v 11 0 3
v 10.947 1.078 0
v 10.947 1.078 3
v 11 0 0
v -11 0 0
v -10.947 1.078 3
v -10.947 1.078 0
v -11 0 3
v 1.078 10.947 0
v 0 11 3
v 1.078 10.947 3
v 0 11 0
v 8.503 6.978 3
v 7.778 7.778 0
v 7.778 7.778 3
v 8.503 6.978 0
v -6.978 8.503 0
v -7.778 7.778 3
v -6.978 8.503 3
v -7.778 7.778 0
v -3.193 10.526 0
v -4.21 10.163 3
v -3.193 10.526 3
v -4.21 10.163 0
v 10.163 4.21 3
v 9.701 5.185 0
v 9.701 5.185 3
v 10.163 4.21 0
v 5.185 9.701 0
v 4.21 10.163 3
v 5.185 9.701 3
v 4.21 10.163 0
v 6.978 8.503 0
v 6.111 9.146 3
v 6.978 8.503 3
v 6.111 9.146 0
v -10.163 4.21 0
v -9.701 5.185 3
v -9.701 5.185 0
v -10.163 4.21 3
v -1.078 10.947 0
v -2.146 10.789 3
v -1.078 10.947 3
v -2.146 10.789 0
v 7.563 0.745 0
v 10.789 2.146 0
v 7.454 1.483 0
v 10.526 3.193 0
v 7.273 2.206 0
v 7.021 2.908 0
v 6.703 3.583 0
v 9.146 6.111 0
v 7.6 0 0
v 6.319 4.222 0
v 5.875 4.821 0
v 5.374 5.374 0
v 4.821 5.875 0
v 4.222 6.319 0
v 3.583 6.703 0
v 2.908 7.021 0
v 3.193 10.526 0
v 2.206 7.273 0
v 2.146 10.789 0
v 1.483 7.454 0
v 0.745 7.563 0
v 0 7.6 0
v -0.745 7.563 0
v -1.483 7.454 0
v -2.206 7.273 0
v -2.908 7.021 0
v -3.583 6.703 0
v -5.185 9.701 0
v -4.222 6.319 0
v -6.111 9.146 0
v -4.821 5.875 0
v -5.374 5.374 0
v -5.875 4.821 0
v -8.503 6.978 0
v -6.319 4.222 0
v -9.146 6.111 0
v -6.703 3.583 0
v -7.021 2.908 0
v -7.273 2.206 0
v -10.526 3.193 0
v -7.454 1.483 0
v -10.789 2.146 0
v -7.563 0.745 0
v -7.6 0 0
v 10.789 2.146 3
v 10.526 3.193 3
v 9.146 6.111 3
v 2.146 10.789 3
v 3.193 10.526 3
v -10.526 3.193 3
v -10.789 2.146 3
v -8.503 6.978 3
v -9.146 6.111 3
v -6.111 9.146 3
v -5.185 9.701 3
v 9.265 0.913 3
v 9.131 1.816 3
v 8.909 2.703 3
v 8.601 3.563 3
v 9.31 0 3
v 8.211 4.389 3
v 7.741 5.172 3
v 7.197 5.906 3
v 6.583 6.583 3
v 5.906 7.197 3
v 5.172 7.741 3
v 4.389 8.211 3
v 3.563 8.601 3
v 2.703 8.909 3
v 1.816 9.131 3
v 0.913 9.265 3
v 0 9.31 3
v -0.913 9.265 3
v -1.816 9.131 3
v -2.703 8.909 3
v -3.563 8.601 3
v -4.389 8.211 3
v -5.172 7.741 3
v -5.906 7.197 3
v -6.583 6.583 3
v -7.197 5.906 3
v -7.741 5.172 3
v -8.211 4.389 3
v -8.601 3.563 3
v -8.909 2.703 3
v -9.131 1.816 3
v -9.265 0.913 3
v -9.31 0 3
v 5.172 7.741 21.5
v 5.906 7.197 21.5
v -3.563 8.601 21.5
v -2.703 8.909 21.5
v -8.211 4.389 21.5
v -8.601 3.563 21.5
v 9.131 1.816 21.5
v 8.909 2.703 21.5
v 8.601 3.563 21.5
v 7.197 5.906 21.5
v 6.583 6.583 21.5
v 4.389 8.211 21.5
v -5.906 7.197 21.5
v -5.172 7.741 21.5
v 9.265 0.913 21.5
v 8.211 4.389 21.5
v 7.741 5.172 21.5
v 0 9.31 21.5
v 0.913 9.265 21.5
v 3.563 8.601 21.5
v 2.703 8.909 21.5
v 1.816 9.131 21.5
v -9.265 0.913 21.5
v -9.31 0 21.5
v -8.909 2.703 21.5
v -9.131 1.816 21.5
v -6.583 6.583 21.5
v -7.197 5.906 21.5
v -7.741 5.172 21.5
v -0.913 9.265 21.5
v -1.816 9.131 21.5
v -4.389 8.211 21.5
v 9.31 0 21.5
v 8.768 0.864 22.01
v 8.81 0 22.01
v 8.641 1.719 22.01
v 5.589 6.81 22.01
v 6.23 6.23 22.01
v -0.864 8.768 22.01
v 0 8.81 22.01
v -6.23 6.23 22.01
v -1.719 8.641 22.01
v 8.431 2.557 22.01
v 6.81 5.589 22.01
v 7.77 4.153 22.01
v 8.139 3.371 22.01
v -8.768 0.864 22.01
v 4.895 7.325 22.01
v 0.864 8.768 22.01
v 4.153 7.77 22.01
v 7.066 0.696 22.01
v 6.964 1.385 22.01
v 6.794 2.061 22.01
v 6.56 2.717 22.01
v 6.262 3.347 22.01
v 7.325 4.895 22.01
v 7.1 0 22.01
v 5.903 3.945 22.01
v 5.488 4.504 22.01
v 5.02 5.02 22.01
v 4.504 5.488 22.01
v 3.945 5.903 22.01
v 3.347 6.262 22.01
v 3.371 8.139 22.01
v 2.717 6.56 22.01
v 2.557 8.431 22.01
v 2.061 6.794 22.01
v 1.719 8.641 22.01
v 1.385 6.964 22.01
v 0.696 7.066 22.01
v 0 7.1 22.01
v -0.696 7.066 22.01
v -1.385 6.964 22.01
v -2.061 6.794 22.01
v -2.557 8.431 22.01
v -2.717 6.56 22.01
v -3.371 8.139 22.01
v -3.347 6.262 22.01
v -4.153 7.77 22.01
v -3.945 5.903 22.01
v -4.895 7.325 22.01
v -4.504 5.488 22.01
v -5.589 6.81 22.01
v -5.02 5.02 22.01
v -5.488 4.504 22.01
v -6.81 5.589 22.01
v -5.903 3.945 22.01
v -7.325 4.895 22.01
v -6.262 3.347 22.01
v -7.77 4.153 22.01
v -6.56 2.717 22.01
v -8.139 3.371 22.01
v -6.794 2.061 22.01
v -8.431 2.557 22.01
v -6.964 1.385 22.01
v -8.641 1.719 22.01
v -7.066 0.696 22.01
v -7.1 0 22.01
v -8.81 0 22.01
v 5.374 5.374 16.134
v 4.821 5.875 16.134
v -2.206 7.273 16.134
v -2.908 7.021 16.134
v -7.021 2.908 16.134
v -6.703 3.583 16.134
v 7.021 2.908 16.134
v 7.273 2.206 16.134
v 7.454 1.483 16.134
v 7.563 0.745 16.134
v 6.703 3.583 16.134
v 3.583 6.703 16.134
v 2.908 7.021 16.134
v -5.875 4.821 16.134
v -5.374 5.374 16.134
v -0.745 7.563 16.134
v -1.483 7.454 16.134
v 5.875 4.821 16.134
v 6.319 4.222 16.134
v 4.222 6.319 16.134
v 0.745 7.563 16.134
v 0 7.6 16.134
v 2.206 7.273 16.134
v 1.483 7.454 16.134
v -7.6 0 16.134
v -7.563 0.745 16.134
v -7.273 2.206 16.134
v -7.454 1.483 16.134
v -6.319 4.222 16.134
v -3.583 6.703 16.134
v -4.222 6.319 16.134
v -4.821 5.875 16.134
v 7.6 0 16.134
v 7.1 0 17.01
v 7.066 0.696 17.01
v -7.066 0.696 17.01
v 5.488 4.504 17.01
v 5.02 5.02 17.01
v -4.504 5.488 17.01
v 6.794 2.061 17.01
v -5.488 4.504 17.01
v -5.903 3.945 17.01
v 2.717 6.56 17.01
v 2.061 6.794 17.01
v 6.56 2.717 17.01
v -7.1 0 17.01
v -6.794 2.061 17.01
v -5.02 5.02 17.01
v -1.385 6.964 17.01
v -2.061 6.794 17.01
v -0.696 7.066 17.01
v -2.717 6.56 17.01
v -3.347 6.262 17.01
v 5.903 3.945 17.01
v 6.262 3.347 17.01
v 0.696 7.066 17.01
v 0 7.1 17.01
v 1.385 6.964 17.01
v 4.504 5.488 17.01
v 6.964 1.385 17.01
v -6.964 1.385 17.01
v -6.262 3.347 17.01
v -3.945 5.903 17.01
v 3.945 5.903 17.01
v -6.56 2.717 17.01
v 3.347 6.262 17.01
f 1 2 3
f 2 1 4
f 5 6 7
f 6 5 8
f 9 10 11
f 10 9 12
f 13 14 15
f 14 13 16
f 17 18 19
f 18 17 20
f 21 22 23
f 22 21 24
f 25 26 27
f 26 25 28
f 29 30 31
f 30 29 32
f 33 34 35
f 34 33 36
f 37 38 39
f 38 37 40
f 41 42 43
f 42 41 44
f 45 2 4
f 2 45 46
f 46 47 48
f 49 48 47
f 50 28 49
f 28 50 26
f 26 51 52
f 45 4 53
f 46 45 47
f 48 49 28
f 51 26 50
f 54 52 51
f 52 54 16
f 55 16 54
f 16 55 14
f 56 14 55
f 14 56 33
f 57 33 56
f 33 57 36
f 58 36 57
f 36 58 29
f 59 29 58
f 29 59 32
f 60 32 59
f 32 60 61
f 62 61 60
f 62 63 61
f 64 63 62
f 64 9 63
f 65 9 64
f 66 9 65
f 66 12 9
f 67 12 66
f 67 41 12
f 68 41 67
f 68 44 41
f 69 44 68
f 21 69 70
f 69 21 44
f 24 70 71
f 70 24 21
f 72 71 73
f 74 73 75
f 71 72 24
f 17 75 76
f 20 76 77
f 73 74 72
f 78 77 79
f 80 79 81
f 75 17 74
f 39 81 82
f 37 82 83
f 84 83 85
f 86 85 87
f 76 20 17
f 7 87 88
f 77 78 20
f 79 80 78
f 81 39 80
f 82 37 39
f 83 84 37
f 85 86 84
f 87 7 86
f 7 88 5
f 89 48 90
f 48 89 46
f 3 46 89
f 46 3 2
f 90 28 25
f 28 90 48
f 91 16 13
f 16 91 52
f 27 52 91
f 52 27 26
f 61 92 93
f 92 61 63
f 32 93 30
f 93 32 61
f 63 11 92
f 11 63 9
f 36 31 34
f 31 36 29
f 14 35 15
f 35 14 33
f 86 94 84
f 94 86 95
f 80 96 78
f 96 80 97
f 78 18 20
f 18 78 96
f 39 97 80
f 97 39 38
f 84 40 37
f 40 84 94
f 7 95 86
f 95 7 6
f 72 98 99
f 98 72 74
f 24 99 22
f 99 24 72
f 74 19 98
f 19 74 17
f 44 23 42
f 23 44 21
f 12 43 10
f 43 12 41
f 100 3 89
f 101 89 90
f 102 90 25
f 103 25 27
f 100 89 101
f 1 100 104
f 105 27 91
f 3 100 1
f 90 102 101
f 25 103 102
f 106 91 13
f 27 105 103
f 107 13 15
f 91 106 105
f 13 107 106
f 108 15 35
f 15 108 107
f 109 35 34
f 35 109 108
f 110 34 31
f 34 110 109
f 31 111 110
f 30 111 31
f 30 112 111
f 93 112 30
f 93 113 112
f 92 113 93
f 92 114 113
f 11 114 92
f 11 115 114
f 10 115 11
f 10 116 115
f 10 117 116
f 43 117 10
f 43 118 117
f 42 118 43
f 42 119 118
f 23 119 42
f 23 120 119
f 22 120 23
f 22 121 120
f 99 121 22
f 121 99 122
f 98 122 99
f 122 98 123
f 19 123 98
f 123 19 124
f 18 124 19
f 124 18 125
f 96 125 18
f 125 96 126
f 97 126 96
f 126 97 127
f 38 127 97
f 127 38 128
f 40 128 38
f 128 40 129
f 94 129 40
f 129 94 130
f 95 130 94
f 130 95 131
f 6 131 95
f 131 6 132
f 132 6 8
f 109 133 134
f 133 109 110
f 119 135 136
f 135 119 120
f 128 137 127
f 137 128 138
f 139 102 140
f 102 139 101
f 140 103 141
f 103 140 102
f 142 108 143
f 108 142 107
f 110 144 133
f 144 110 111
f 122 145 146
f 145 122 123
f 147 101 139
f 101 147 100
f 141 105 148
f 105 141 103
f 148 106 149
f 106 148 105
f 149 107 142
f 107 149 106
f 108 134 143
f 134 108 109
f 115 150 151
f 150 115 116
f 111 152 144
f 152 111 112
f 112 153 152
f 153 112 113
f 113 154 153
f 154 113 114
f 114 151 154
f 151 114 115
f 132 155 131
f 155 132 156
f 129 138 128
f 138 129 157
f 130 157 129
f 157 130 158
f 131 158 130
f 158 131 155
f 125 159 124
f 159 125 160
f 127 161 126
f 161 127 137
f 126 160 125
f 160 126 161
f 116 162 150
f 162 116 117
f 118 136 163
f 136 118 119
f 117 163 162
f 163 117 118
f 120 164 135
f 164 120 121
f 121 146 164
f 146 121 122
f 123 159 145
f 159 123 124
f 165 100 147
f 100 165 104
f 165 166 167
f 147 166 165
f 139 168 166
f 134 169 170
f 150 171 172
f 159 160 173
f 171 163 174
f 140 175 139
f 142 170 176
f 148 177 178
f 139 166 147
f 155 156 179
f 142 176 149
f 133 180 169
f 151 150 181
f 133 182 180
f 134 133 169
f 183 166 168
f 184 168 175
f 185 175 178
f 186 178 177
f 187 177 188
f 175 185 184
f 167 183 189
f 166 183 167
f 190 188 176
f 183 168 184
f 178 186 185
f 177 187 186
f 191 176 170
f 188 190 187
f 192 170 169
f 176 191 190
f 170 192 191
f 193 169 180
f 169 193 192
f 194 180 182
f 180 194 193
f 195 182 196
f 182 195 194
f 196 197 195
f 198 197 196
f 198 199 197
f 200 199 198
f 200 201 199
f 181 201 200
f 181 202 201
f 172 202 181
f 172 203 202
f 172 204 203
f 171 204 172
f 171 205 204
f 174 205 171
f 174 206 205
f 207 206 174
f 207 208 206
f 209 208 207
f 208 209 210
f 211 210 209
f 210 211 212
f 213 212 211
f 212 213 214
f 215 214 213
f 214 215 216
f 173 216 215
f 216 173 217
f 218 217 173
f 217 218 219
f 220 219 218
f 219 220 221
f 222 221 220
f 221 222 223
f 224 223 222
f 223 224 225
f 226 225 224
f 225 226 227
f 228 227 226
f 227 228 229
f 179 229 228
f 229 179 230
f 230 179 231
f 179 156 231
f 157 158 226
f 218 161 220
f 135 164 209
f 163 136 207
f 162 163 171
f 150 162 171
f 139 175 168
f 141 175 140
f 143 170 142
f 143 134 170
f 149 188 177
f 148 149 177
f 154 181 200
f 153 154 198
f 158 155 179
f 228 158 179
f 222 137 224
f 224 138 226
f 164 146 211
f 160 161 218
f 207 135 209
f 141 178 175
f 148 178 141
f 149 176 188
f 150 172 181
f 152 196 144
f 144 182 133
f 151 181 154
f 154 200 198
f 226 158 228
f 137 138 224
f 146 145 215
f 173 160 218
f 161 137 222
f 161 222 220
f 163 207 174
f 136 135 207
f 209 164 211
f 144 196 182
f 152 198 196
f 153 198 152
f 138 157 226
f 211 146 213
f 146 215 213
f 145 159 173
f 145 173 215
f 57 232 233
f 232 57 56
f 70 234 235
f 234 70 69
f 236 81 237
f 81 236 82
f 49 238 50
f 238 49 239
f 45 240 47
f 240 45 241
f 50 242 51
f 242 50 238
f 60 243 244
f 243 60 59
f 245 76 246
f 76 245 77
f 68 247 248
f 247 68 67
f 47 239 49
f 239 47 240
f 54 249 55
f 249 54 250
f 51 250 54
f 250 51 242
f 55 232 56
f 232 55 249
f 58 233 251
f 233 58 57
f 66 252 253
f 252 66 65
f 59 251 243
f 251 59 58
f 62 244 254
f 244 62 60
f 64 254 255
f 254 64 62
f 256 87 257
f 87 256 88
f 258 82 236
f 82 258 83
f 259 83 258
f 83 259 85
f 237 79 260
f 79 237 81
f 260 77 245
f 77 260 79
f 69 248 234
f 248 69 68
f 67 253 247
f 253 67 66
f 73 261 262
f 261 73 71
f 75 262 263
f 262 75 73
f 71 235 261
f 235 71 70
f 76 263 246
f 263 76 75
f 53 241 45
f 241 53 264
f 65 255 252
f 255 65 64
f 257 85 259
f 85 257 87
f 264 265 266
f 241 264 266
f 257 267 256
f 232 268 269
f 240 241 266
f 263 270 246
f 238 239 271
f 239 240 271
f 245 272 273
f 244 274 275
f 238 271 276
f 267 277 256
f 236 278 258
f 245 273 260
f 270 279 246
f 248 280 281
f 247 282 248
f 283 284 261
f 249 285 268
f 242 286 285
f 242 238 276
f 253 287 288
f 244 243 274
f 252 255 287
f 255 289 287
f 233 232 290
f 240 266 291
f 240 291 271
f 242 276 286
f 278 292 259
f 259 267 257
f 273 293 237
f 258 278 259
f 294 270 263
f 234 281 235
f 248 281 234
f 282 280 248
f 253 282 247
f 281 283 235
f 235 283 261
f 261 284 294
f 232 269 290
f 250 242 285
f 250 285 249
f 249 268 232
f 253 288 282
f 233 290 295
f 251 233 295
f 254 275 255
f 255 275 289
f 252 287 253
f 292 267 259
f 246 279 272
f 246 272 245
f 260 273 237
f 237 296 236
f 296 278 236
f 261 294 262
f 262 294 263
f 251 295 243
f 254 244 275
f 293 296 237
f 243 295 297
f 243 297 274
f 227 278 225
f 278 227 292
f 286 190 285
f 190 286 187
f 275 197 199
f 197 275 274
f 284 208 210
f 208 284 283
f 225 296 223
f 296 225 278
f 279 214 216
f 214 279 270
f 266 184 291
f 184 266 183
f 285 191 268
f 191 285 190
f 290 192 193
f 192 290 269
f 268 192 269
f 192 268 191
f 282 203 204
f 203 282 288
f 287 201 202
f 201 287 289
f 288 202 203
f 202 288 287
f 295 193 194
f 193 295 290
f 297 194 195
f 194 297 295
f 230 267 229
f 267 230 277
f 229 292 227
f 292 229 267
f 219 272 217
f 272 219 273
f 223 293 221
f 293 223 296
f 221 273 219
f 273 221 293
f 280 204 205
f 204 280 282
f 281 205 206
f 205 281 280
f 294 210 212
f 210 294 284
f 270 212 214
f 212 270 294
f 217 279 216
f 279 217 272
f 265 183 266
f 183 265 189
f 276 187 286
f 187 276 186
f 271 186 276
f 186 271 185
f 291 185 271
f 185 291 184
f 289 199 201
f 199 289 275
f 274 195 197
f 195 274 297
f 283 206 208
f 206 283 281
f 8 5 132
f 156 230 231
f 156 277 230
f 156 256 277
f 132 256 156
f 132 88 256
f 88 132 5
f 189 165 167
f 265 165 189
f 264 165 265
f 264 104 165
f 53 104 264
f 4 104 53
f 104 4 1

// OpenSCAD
// ============================================================
// Flashlight Shim / Tail Holder
// Wraps tail end of flashlight; inserts into 18.92 mm bore.
// Split in half along XZ plane before printing; join two halves
// around the physical flashlight after printing.
//
// Orientation: flange (tail/button end) at z=0,
//              insertion tip (light end) at z=top.
// ============================================================

// --- 1. Parameters ---

// Flashlight body sections (tail toward light end)
fl_tail_dia  = 15.0;  // mm — tail section outer dia
fl_tail_len  = 14.0;  // mm — axial length of tail section
fl_fwd_dia   = 14.0;  // mm — forward (light-side) section outer dia
fl_fwd_grip  =  5.0;  // mm — axial grip on forward section

// Receiving cylinder
bore_id      = 18.92; // mm — inner dia of cylinder shim inserts into
bore_wall    =  3.3;  // mm — wall thickness of receiving cylinder (reference)

// Fit allowances
fl_gap       =  0.2;  // mm — diametric clearance on flashlight body
bore_gap     =  0.3;  // mm — diametric clearance for shim inside bore

// Flange — sits on bore entry face, prevents shim from falling in
flange_od    = 22.0;  // mm — must exceed bore_id
flange_h     =  3.0;  // mm — axial thickness

// Lead-in chamfer at insertion tip
chamfer      =  0.5;  // mm — outer edge chamfer depth at forward tip

// Inner bore step taper
bore_taper_deg = 30;  // degrees from Z axis; replaces 90° ledge for printability

// Half-model for printing (cut along XZ plane, Y≥0 half kept)
half_model   = true;  // true = one half; false = full shim

// --- 2. Derived dimensions ---
shim_od   = bore_id - bore_gap;         // 18.62 mm — insertable body OD
inner_big = fl_tail_dia + fl_gap;       // 15.4  mm — bore for tail section
inner_sml = fl_fwd_dia  + fl_gap;       // 14.4  mm — bore for forward section
body_len  = fl_tail_len + fl_fwd_grip;  // 21    mm — total insertable body length
step_r    = (inner_big - inner_sml) / 2;               // 0.5  mm — bore radius delta
step_h    = step_r / tan(bore_taper_deg);              // ~0.866 mm — taper axial height

$fn = 64;

// --- 3. Guards ---
assert(flange_od > bore_id,  "flange_od must exceed bore_id to act as stop");
assert(shim_od   < bore_id,  "shim OD must fit inside bore");
assert(shim_od   > inner_big,"shim wall thickness must be positive");

// --- 4. Shim module ---
module flashlight_shim() {
    difference() {
        // Outer solid
        union() {
            // Flange — bears on entry face of receiving cylinder
            cylinder(d = flange_od, h = flange_h);

            // Cylindrical body — inserts into bore
            translate([0, 0, flange_h])
                cylinder(d = shim_od, h = body_len - chamfer);

            // Lead-in chamfer at insertion tip (eases entry into bore)
            translate([0, 0, flange_h + body_len - chamfer])
                cylinder(d1 = shim_od, d2 = shim_od - 2 * chamfer,
                         h = chamfer + 0.01);
        }

        // Inner bore — stepped to match flashlight profile
        // Tail section bore (wider, up to taper start)
        translate([0, 0, -0.01])
            cylinder(d = inner_big,
                     h = flange_h + fl_tail_len - step_h + 0.01);

        // 30° taper: inner_big → inner_sml over step_h
        translate([0, 0, flange_h + fl_tail_len - step_h])
            cylinder(d1 = inner_big, d2 = inner_sml, h = step_h + 0.01);

        // Forward section bore (narrower) — shoulder catches flashlight step
        translate([0, 0, flange_h + fl_tail_len - 0.01])
            cylinder(d = inner_sml,
                     h = fl_fwd_grip + 0.02);
    }
}

// --- 5. Assembly ---
if (half_model) {
    // Keep Y≥0 half; flat face sits on build plate after rotating 90°
    intersection() {
        flashlight_shim();
        translate([-flange_od, 0, -0.01])
            cube([flange_od * 2, flange_od, flange_h + body_len + 0.02]);
    }
} else {
    flashlight_shim();
}
